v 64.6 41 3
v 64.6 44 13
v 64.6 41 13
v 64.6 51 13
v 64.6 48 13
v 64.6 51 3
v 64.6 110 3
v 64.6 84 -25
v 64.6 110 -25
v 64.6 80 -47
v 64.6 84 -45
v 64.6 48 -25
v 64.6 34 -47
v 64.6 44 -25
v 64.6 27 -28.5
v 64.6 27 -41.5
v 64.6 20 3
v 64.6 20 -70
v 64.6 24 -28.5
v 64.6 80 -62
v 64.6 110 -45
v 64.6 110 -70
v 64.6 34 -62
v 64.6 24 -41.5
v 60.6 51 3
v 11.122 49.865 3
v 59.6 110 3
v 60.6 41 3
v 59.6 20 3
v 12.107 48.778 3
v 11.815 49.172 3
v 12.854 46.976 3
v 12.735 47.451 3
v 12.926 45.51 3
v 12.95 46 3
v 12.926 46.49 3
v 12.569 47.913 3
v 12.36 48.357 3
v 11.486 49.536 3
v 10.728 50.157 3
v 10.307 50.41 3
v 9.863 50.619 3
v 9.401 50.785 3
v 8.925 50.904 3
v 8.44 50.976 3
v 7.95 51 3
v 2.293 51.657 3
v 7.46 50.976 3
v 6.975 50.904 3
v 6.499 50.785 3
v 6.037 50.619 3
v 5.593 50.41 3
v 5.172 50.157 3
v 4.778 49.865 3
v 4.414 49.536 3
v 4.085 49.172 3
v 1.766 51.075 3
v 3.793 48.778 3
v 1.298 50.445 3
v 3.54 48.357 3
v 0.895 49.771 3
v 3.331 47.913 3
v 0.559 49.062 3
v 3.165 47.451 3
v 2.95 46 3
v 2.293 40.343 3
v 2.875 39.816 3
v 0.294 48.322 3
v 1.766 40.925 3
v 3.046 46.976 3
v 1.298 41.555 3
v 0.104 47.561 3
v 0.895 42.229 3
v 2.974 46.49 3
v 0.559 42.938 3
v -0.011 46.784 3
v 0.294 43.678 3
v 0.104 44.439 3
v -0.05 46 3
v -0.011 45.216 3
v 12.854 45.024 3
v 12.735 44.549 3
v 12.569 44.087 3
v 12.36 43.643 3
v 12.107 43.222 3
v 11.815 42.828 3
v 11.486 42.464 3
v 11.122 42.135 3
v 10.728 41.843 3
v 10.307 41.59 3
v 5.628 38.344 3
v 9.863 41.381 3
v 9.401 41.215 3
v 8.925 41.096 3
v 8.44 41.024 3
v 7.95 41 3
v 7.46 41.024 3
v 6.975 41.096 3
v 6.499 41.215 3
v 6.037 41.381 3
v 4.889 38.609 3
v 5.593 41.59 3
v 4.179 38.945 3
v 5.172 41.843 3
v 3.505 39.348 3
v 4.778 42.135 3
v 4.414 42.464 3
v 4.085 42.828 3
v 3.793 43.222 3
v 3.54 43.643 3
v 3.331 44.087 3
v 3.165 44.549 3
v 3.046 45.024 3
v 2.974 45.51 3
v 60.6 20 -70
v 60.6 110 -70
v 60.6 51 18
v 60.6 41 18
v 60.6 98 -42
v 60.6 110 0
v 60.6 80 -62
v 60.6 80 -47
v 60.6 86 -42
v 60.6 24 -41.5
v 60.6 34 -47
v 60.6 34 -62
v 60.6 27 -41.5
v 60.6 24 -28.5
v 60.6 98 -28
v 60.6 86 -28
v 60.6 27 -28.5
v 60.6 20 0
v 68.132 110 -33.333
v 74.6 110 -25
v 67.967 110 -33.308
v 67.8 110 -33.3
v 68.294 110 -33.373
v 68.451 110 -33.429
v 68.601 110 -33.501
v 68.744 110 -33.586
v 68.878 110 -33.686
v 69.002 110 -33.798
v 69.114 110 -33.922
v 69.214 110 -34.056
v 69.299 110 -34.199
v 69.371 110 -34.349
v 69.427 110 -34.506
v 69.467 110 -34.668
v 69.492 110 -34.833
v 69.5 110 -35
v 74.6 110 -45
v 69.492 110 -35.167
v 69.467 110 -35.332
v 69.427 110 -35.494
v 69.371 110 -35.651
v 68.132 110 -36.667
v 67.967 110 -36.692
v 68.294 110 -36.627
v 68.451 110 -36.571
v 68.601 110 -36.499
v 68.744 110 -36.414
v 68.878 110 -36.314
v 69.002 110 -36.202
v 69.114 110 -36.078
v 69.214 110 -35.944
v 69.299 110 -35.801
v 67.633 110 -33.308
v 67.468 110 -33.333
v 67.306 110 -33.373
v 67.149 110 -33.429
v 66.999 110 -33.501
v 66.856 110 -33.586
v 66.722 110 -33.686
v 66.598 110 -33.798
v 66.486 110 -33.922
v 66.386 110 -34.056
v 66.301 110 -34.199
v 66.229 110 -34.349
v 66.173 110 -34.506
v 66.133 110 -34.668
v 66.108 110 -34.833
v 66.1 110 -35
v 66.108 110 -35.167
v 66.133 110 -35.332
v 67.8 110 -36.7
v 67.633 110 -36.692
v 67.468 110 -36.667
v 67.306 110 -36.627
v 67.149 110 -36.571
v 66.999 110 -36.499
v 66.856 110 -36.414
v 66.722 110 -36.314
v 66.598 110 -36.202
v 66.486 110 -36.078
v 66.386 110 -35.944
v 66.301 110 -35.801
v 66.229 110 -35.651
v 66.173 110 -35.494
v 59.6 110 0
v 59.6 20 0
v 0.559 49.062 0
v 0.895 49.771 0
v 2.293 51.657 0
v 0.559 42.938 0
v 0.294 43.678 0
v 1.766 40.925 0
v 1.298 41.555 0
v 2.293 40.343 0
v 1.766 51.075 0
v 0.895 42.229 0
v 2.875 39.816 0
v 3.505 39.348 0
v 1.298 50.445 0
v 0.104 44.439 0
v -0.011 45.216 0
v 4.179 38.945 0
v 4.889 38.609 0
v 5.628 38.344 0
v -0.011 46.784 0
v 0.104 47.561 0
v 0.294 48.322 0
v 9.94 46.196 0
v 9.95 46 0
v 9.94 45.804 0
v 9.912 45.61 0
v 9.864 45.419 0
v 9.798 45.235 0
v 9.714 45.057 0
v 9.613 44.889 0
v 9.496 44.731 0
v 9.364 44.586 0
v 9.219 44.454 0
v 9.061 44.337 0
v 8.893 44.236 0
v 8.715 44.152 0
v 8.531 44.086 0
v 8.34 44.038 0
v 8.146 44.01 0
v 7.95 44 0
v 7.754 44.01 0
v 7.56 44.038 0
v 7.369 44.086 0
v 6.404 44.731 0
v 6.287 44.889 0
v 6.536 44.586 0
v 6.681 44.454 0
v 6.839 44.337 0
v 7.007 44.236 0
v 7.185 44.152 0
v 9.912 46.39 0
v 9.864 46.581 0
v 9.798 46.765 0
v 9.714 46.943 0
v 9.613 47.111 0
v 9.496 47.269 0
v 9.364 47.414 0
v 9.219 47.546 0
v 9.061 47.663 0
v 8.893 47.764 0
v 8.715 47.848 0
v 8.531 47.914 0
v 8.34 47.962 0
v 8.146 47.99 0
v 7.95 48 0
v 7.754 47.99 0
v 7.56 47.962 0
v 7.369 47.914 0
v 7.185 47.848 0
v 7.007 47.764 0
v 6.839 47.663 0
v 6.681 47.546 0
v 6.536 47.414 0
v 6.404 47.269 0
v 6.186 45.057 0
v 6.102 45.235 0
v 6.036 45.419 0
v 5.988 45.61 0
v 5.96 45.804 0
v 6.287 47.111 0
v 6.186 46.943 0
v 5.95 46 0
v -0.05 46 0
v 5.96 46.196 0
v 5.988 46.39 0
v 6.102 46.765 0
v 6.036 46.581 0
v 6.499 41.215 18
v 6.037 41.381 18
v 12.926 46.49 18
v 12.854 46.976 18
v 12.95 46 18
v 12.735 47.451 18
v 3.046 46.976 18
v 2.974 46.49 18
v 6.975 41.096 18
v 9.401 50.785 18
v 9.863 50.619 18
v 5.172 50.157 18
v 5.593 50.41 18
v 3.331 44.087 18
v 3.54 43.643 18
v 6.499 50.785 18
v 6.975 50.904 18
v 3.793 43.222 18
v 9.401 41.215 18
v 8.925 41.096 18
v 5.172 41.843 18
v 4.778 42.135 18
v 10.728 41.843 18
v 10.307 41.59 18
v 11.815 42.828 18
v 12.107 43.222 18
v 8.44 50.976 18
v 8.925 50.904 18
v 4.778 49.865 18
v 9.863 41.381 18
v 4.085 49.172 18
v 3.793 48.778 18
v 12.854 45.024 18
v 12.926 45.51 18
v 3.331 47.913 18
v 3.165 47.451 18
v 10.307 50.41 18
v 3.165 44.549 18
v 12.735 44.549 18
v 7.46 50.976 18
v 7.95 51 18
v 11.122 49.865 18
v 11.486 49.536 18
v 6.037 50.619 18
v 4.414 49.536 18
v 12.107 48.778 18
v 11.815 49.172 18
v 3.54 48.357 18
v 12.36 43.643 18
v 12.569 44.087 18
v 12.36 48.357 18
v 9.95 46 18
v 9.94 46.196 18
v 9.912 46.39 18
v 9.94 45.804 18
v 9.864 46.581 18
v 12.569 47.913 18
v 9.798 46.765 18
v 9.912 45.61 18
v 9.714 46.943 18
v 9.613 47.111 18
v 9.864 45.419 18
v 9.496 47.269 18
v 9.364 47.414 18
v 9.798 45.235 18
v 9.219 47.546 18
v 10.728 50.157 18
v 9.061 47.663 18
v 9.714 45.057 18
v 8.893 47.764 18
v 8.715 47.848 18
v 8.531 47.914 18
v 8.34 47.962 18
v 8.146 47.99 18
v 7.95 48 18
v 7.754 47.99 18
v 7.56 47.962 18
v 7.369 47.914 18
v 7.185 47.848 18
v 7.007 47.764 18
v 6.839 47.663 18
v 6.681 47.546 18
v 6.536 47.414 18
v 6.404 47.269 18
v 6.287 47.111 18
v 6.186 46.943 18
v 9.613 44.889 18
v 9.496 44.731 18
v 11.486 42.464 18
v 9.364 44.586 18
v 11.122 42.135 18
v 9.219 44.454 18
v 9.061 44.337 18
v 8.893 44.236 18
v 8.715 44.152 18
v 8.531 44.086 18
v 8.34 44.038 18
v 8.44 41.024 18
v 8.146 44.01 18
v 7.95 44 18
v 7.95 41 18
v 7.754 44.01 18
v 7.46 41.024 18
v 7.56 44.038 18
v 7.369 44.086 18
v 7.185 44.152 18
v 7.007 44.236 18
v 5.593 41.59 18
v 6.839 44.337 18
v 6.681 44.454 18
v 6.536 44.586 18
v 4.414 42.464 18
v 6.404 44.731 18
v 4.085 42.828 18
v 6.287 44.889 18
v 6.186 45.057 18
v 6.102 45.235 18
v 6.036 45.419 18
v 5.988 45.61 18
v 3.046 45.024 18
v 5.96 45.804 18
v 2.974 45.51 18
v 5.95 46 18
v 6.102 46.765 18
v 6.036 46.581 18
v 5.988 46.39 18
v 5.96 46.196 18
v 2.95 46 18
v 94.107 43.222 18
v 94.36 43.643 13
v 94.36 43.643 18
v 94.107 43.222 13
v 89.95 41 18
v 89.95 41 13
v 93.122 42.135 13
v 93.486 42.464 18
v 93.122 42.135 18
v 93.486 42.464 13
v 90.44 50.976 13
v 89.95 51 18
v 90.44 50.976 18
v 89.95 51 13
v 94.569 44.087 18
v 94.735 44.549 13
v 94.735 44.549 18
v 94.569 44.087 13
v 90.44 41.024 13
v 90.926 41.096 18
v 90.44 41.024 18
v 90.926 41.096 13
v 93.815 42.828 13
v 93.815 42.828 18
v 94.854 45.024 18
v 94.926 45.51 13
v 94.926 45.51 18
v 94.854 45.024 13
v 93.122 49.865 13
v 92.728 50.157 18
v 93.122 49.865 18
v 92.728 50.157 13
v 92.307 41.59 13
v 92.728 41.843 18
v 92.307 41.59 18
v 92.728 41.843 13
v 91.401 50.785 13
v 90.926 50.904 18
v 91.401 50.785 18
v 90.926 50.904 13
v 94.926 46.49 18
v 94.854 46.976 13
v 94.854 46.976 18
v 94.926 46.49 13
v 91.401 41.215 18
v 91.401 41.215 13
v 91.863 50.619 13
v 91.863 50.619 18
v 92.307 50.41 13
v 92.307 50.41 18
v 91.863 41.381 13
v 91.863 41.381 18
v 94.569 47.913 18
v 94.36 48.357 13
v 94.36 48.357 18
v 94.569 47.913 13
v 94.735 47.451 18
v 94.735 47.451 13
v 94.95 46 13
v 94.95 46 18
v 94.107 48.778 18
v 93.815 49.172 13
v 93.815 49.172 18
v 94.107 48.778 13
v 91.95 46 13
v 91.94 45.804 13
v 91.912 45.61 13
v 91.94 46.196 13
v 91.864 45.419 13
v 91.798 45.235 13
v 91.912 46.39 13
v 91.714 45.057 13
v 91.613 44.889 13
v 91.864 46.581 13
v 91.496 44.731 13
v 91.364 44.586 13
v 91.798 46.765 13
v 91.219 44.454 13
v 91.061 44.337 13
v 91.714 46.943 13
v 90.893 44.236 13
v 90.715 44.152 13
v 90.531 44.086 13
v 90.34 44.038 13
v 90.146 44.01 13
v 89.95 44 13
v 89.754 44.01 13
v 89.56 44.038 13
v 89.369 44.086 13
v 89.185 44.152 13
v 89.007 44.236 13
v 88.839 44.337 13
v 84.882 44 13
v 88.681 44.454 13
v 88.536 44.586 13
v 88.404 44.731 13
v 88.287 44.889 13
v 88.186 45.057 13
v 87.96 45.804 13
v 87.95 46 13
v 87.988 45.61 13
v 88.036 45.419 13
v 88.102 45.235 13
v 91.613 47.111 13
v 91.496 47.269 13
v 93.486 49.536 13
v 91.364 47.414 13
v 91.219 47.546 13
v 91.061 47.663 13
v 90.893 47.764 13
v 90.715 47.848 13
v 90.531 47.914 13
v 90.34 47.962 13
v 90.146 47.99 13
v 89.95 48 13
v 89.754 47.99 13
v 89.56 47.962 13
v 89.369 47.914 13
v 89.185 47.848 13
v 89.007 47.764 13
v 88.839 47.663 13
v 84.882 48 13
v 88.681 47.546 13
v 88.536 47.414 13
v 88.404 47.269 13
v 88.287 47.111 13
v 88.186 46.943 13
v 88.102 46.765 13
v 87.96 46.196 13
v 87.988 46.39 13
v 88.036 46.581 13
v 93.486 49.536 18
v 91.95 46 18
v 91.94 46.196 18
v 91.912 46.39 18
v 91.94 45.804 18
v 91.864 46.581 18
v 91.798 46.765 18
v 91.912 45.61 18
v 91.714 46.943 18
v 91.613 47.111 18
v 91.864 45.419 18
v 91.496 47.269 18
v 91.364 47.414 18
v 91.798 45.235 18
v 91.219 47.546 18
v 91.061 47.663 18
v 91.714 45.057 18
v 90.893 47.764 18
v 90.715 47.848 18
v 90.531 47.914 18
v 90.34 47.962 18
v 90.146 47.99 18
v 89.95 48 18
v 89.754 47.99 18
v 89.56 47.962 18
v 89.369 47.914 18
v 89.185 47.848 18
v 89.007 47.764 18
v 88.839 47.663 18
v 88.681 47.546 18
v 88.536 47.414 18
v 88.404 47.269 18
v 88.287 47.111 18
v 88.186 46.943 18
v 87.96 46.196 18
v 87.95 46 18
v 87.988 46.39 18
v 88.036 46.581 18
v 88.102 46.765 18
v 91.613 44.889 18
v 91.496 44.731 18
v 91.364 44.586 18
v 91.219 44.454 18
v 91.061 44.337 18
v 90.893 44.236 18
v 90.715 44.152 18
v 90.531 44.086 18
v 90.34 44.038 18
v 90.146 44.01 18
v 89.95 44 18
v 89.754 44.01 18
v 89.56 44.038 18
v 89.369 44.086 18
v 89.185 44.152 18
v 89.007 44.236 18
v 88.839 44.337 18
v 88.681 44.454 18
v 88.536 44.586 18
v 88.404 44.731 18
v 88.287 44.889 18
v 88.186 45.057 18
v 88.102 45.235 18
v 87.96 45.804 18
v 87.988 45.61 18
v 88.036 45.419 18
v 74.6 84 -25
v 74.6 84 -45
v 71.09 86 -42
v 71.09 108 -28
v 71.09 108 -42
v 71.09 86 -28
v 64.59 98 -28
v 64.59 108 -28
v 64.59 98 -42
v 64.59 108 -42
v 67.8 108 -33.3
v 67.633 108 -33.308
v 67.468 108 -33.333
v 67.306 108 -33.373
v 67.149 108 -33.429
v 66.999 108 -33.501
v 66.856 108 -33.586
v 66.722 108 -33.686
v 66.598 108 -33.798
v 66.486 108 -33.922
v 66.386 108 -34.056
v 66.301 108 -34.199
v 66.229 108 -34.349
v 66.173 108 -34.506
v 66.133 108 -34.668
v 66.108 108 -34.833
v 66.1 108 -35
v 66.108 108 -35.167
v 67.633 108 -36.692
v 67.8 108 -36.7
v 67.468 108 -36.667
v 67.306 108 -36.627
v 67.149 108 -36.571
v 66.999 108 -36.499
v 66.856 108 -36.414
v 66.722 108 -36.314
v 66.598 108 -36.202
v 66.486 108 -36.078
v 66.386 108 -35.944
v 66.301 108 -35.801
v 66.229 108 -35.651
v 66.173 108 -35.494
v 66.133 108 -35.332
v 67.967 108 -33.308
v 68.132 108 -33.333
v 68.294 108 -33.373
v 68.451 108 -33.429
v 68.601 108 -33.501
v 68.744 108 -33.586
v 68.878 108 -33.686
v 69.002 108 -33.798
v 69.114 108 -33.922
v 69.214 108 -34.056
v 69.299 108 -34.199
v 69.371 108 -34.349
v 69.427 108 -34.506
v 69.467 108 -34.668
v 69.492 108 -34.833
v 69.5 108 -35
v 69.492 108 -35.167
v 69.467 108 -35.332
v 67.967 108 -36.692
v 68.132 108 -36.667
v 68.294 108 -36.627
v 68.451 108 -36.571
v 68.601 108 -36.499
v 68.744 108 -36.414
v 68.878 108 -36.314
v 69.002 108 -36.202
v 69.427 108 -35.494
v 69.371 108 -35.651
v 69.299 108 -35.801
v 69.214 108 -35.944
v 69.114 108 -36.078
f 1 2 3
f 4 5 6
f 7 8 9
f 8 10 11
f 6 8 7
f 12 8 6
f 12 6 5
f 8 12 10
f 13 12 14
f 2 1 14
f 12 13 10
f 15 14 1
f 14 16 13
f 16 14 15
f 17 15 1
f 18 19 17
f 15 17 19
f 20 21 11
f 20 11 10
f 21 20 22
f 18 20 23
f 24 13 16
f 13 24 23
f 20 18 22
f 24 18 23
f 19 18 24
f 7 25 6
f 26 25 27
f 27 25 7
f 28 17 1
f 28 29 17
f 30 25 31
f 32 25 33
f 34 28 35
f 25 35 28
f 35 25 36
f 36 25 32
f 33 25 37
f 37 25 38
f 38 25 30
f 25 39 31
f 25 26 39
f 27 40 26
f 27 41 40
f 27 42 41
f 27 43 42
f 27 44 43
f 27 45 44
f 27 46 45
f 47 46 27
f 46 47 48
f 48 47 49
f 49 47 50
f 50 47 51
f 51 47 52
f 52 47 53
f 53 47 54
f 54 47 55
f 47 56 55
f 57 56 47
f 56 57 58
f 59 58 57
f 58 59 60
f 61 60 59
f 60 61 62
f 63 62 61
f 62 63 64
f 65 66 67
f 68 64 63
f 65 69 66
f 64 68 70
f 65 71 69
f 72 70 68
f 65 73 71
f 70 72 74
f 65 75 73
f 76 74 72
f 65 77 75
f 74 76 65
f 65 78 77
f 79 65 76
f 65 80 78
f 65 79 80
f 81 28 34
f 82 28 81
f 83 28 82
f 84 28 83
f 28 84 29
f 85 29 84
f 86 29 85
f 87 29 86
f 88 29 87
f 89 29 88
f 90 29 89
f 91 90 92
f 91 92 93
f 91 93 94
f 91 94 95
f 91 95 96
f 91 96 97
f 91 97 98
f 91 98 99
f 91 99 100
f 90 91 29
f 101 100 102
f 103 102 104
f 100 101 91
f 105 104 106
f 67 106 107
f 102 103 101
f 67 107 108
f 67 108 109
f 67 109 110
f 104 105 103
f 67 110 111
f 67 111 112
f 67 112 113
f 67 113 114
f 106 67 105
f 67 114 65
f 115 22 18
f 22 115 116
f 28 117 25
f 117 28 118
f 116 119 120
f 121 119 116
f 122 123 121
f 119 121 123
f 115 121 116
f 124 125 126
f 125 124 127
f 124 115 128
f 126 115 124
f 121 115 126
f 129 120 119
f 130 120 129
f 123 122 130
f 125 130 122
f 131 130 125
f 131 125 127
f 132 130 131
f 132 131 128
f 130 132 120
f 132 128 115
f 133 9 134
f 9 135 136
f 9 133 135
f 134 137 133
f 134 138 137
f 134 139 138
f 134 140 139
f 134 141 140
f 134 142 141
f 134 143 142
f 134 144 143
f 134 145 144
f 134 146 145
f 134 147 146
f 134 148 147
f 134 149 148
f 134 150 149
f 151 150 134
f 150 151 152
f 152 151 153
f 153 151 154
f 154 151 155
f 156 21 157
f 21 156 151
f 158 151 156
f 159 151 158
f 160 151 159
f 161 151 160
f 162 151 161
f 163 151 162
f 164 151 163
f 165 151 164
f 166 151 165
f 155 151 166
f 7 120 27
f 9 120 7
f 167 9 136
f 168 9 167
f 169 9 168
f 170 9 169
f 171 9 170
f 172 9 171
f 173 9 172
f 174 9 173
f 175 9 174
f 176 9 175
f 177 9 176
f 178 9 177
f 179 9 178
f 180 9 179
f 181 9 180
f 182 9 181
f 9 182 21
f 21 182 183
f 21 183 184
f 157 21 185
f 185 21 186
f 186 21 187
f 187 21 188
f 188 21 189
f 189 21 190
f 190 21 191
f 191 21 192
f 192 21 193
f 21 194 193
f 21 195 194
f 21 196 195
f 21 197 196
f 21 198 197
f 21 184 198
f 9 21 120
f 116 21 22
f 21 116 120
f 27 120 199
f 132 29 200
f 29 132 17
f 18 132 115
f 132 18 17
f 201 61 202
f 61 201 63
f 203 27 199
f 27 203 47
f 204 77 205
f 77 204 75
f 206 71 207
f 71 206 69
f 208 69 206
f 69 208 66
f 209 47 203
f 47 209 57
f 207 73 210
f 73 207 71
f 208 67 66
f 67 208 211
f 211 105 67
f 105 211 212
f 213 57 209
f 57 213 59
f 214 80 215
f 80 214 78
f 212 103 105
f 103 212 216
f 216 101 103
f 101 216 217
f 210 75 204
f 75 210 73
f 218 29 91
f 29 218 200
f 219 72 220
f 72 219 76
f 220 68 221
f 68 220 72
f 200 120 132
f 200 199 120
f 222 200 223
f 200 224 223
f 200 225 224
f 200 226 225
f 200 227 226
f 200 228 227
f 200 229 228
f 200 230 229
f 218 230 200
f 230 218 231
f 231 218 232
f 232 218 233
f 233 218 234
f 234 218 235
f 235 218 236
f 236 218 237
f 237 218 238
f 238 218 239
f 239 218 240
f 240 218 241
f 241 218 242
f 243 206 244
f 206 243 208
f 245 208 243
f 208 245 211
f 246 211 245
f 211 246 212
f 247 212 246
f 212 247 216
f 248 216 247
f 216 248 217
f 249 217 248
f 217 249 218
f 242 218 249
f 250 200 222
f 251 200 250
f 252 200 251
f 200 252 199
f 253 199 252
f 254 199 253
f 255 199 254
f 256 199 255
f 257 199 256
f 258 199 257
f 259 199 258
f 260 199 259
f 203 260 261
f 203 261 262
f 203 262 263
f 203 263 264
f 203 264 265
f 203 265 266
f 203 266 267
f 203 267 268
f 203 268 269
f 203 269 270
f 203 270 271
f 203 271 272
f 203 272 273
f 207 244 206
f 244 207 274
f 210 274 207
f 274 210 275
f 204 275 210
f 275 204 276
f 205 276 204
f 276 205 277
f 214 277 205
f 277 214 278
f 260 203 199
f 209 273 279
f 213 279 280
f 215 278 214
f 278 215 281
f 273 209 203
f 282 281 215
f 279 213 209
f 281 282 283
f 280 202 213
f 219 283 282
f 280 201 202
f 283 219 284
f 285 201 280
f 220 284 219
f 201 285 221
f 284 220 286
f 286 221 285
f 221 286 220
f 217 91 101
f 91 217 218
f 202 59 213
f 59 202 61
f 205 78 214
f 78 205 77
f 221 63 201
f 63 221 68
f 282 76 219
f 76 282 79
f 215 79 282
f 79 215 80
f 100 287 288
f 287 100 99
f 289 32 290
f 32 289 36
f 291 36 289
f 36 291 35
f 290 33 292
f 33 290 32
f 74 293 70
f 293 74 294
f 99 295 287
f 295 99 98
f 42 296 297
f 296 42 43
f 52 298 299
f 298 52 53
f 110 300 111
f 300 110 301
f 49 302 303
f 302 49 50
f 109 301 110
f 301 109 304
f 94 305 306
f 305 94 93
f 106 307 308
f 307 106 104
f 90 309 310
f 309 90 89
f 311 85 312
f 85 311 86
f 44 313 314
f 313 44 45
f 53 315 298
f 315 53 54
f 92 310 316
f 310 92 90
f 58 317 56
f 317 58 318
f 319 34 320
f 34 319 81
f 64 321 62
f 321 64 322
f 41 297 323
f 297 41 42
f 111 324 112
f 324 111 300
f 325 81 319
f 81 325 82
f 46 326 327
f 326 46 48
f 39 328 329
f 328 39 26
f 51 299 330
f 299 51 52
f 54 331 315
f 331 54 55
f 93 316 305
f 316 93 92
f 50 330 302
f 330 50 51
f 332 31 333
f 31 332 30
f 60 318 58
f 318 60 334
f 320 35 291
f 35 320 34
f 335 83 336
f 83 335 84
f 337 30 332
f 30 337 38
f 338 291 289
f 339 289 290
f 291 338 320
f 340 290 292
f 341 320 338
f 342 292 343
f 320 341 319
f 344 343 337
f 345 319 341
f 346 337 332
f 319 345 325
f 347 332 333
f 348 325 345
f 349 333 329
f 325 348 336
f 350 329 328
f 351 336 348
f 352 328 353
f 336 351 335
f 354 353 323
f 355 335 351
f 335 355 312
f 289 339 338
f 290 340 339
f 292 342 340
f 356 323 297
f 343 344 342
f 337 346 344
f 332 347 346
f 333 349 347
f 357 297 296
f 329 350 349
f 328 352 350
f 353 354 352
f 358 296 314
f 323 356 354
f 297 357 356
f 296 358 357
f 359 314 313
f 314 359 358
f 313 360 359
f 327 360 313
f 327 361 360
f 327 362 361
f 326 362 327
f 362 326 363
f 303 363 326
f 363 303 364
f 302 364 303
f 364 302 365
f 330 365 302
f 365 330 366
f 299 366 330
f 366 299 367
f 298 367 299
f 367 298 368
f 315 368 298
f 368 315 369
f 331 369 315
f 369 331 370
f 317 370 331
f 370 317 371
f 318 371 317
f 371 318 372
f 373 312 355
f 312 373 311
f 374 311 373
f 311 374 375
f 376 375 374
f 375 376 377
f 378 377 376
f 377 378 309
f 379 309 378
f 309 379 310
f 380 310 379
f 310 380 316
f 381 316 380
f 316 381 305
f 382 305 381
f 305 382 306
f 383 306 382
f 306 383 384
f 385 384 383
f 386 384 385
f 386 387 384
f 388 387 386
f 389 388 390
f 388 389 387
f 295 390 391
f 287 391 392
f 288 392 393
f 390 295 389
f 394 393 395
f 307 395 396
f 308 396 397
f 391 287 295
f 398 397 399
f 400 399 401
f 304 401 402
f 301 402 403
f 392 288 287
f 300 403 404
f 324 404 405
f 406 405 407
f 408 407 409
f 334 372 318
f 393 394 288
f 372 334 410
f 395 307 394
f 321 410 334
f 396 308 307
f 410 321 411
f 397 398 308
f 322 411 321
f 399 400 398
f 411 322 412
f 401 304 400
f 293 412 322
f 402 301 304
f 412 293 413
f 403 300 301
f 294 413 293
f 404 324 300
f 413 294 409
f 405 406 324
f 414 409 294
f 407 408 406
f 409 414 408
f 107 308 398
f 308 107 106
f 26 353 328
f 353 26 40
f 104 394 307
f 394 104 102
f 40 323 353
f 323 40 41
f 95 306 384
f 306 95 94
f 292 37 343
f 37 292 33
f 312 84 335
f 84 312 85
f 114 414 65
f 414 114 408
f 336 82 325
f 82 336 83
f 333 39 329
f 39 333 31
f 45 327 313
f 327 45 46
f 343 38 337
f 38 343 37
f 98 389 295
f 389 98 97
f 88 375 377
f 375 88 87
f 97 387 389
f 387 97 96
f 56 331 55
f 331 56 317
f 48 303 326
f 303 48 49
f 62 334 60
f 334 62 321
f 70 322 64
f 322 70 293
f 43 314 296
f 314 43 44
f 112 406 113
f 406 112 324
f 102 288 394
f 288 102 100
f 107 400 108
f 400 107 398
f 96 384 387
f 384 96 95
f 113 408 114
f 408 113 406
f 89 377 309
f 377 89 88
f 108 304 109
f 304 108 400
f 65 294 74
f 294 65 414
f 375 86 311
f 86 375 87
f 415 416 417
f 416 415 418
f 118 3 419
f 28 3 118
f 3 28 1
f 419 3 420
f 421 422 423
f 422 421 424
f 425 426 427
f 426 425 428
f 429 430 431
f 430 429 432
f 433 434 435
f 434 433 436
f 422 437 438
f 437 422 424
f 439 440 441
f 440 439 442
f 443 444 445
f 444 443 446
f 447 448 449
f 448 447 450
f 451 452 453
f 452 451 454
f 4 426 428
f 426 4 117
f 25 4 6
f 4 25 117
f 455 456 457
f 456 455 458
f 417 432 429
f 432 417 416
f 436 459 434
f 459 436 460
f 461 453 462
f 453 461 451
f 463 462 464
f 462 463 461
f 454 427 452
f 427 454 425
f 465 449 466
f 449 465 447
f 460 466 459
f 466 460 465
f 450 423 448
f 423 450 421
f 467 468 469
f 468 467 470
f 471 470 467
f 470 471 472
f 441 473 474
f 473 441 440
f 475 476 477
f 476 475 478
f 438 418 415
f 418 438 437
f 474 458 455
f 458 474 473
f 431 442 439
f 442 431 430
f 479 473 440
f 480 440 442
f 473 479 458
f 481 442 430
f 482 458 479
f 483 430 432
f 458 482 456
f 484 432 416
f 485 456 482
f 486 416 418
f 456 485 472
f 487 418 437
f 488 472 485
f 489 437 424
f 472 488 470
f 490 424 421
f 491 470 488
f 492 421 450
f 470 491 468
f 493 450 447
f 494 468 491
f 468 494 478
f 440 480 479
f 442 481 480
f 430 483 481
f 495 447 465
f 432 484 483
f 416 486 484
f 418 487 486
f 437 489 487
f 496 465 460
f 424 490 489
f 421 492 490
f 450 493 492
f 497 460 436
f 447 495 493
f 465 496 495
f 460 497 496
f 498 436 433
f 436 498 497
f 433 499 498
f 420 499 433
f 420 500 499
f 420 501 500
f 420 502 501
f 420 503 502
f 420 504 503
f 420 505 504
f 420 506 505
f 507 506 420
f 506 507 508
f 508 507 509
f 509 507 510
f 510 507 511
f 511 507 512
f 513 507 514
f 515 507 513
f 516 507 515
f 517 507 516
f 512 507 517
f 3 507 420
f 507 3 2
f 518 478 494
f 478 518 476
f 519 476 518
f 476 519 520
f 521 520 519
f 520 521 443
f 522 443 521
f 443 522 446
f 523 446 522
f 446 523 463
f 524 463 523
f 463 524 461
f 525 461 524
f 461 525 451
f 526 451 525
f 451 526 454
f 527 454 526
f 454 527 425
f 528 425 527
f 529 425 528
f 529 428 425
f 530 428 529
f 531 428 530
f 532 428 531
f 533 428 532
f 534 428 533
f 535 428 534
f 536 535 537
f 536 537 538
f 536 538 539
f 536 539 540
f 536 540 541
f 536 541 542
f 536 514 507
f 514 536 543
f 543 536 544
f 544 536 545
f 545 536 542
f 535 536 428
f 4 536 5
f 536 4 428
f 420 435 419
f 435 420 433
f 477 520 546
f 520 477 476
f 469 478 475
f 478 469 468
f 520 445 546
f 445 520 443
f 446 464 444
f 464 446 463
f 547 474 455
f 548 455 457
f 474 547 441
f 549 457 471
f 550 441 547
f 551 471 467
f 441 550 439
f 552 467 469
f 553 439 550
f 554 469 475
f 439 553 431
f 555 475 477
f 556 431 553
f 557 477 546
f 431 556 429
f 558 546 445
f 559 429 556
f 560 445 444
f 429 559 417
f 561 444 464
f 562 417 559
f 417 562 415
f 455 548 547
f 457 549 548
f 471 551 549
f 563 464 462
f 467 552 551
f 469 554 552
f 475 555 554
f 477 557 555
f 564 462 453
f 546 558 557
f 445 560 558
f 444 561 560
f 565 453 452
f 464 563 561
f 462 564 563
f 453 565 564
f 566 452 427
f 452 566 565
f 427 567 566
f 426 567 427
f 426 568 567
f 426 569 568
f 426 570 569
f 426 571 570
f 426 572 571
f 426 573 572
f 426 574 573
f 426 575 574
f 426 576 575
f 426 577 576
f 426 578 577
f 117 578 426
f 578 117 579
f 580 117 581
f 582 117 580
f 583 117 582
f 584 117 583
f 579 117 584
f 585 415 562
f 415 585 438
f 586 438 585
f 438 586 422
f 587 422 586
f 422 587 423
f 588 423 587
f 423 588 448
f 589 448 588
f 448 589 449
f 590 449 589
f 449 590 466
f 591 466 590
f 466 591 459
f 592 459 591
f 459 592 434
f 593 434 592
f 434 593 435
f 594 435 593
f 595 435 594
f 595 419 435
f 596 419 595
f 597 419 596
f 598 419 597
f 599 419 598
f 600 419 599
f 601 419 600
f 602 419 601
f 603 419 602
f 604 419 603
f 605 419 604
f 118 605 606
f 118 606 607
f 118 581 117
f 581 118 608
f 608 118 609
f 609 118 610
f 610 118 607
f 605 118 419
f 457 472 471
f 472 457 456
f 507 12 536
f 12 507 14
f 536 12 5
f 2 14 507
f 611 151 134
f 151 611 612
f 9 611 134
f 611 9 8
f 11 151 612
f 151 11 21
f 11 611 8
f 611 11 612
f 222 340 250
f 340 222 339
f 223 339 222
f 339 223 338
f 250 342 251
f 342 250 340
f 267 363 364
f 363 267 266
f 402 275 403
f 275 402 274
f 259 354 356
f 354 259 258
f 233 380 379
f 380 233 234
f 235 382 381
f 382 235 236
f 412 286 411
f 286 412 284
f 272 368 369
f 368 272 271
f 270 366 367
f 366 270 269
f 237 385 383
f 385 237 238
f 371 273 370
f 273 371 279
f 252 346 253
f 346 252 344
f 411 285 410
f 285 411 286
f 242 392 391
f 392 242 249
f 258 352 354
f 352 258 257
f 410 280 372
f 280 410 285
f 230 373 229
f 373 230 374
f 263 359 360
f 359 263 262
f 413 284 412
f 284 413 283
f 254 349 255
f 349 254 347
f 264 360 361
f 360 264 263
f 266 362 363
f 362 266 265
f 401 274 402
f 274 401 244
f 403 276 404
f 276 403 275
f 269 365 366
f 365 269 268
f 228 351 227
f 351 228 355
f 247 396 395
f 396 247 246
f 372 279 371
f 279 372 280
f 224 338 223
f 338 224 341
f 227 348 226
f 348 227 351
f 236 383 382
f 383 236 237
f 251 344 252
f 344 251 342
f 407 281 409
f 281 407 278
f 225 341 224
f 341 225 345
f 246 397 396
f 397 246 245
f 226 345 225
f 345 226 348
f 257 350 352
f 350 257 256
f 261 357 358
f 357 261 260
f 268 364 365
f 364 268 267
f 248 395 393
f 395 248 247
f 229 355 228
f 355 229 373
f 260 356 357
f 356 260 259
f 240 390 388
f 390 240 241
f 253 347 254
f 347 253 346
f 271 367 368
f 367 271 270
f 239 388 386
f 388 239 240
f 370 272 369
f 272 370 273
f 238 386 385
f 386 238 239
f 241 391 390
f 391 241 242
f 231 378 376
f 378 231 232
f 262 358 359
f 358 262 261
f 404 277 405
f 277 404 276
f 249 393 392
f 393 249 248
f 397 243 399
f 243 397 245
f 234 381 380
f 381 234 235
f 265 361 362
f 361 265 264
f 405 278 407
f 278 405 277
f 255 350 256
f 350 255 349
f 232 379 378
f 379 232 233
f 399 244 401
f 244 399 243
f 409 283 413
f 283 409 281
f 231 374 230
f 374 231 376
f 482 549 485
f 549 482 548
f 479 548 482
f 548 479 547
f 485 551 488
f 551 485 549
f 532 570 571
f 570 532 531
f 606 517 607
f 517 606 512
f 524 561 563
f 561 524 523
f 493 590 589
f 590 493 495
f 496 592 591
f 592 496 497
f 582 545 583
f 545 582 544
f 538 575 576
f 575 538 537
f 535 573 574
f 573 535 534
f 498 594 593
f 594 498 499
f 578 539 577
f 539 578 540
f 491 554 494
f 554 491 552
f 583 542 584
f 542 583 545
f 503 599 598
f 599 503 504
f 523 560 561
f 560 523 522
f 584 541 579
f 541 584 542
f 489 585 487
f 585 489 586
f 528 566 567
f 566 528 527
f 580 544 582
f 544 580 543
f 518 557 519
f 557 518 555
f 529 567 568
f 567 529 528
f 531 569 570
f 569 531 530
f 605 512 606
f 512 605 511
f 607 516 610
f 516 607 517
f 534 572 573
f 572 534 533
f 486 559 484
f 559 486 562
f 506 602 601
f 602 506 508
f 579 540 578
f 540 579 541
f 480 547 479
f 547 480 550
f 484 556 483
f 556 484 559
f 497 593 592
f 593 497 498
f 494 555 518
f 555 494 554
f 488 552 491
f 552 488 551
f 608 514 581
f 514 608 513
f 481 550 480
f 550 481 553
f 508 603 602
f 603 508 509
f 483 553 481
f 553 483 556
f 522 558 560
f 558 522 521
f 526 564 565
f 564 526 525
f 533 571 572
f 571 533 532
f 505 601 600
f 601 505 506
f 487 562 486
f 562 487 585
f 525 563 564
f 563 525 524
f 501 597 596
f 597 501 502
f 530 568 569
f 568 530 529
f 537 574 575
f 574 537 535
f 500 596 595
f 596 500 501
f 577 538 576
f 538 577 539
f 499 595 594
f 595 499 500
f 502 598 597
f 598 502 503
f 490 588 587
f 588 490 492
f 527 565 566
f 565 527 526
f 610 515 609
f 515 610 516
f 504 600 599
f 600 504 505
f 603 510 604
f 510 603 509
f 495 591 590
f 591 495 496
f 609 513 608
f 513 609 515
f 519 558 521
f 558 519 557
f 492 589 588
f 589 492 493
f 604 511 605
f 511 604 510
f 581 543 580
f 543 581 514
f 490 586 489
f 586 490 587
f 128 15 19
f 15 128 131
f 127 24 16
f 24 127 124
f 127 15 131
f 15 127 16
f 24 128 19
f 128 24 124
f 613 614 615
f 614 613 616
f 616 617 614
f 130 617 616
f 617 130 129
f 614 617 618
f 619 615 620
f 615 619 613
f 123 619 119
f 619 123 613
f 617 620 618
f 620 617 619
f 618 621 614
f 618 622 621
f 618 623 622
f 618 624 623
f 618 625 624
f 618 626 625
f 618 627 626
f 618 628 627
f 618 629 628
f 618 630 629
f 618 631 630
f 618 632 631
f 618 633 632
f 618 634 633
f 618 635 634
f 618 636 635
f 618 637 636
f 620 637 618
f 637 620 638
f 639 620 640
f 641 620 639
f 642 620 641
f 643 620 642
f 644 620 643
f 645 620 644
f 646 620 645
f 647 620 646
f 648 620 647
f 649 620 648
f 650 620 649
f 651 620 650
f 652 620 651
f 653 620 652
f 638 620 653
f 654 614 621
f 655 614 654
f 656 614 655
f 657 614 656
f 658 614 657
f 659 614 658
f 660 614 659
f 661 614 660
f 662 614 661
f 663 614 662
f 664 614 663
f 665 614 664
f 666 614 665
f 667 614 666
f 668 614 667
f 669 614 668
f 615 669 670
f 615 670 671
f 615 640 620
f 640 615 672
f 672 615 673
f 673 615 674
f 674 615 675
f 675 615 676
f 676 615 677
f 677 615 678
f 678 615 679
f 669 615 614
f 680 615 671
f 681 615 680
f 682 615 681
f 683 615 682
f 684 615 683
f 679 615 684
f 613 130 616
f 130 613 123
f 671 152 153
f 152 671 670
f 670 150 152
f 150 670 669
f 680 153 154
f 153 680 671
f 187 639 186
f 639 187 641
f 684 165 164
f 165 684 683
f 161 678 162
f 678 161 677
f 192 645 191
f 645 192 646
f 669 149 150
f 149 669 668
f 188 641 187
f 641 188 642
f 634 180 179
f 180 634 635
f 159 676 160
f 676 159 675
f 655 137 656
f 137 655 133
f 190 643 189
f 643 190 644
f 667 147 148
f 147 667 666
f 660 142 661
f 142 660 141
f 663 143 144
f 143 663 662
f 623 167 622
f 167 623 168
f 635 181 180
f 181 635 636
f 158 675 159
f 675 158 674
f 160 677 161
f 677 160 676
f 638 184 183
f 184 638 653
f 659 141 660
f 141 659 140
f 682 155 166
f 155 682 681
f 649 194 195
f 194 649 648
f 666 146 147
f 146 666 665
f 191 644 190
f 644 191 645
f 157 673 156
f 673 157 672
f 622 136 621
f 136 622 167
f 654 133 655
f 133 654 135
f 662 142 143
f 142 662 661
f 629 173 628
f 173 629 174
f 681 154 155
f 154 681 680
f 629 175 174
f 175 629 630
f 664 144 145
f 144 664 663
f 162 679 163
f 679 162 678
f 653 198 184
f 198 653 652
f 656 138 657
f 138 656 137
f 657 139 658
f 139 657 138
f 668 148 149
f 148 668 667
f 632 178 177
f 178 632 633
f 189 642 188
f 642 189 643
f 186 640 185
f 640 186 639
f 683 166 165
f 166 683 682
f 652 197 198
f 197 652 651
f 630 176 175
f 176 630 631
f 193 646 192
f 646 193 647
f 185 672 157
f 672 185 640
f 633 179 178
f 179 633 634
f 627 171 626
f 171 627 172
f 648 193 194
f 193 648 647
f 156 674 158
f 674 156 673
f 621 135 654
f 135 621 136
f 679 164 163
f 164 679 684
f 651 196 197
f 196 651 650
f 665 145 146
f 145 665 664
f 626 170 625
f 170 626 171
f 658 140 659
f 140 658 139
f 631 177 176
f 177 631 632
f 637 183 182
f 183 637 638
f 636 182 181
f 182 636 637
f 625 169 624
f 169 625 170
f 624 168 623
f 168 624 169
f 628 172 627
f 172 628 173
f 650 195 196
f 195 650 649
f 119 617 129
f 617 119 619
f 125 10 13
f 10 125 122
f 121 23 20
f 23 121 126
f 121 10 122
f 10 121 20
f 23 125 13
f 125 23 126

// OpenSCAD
// file: params.scad
// =====================================================================
// EurekaMate - motor mount parameters (all dimensions in mm)
// Target: Eureka Mignon Specialita + aftermarket gear-knob kit
//         (big ring gear on the grind dial + small aluminium knob gear)
//
// Values marked TODO-MEASURE are best guesses from public data and MUST
// be checked with a caliper on your grinder/kit before printing.
// See ../README.md for how to measure.
// =====================================================================

$fn = 64;

// ---------------- Grinder body (Eureka datasheet: W 120 x D 140 x H 350) --------
body_w        = 120;   // width  (Eureka spec sheet / product page)
body_d        = 140;   // depth of the metal body (spec sheet; old manual says 180 incl. fork)  TODO-MEASURE
body_r        = 18;    // vertical corner radius of the body                                     TODO-MEASURE
body_top_z    = 205;   // height of the top surface (where the dial sits) above the table       TODO-MEASURE
clearance     = 0.6;   // fit clearance against the body (per side)

// ---------------- Gear-knob kit ------------------------------------------------
// Kit small gear (the aluminium knob that meshes with the big ring gear)
kit_gear_module   = 1.0;   // gear module of the kit                                             TODO-MEASURE
kit_small_teeth   = 20;    // teeth on the small aluminium knob gear                             TODO-MEASURE (count!)
kit_ring_teeth    = 66;    // teeth on the big ring gear on the dial                              TODO-MEASURE (count!)
kit_knob_od       = kit_gear_module * (kit_small_teeth + 2); // tip diameter of the small gear
kit_knob_height   = 12;    // tooth face width of the small gear                                  TODO-MEASURE
// Position of the small knob gear axis relative to the RIGHT body side and the FRONT face
knob_from_right   = 22;    // distance axis -> right side wall (inwards)                         TODO-MEASURE
knob_from_front   = 30;    // distance axis -> front face (backwards)                             TODO-MEASURE
knob_top_above_body = 14;  // top of the small knob above the body top surface                    TODO-MEASURE

// ---------------- Drive pinion on the stepper ----------------------------------
pinion_teeth      = 12;    // fewer teeth = more reduction/torque, slower travel (min ~10)
pinion_module     = kit_gear_module;
pressure_angle    = 20;
pinion_face       = 10;    // tooth face width
pinion_hub_d      = 12;
pinion_hub_h      = 6;
shaft_d           = 5.0;   // NEMA17 shaft
shaft_flat        = 0.5;   // D-flat depth (standard 0.5 mm)
shaft_clear       = 0.15;  // print tolerance on the bore
setscrew_d        = 3.2;   // M3 grub screw (radial)
nut_w             = 5.6;   // M3 nut trap across flats
backlash          = 0.15;  // tooth thinning per flank

// Centre distance pinion <-> small kit gear (standard gearing)
center_distance   = pinion_module * (pinion_teeth + kit_small_teeth) / 2;

// ---------------- Stepper motor ------------------------------------------------
// Default: 17HS4401 (42.3 x 42.3 x 40 mm, ~0.45 Nm). Pancake: motor_len = 20..25.
motor_w           = 42.3;
motor_len         = 40;
motor_boss_d      = 22.2;  // centring boss
motor_boss_h      = 2.0;
motor_hole_pitch  = 31.0;  // M3 hole spacing
motor_shaft_len   = 24;    // shaft length beyond the face

// ---------------- Electronics bay ----------------------------------------------
tmc_w = 15.5; tmc_l = 20.5; tmc_h = 22;    // TMC2209 module on pin headers incl. heatsink (BTT/FYSETC style)
buck_w = 17.5; buck_l = 22.5; buck_h = 6;   // MP1584 (22x17); Mini560 (~20x15) also fits
cap_d = 10.5;  cap_h = 17;                  // 100-470 uF / 25 V electrolytic (upright)
as5600_w = 23.5; as5600_l = 23.5;           // common AS5600 breakout (magnet 6x2.5 mm in the knob)
wall = 2.4;
floor_t = 3.0;
lid_t = 2.4;
// M3 threads in the print: heat-set inserts (default) or self-tapping screws.
// Insert: ruthex RX-M3x5.7 or similar (M3, length 5.7 mm, OD 4.6 mm) -> 4.0 mm hole, >= 6.5 mm deep.
heat_inserts  = true;
insert_hole_d = 4.0;    // check your insert's data sheet (ruthex M3x5.7: 4.0 mm)
self_tap_d    = 2.6;    // M3 screw cut directly into PETG
m3_thread_d   = heat_inserts ? insert_hole_d : self_tap_d;
lid_screw_d   = m3_thread_d;            // 4x in the housing bosses (lid screws M3x8)
lid_boss_d    = heat_inserts ? 8 : 7;   // boss around the lid screw holes
vent_w = 1.6;

// Mesh adjustment: slot length along the pinion->knob line
mesh_slot_len = 6;   // +-3 mm

// ---------------- Side brace + strap -------------------------------------------
brace_h        = 70;    // height of the plate on the right side
brace_t        = 4;     // plate thickness
brace_lip      = 8;     // hook lip over the top edge (slides on from below, then hooks)
brace_depth    = 90;    // front-back length of the plate
strap_w        = 12;    // strap width
strap_t        = 1.6;   // strap thickness (TPU 95A recommended, PETG works with 1.2 mm)
strap_z        = 35;    // strap height on the brace (from top edge, downwards)
strap_segments = 4;     // loop split into printable segments

// Housing floor height above the body top (pinion must clear the body; AS5600 gap)
floor_gap       = 4;      // floor underside sits this far above the knob top
// Optional AS5600 sits on the PINION AXIS: it reads a diametric magnet on the REAR shaft
// of a dual-shaft NEMA17 (e.g. "17HS4401 dual shaft"). Single-shaft motor -> as5600 = false.
as5600         = true;
rear_shaft_len = 10;      // rear shaft stick-out of a dual-shaft motor          TODO-MEASURE
magnet_d = 6; magnet_h = 2.5;  // diametric magnet 6x2.5 mm (often shipped with AS5600 boards)
as5600_gap     = 1.5;     // chip to magnet (datasheet: 0.5..3 mm)
as5600_chip_h  = 1.5;
as5600_pcb_t   = 1.6;

// ---------------- Derived housing geometry (shared by housing, brace, assembly) --
rear_stack = as5600 ? rear_shaft_len + magnet_h + as5600_gap + as5600_chip_h + as5600_pcb_t + 1.5 : 4;
inner_h   = motor_len + rear_stack;
// height of the AS5600 PCB underside above the floor top (chip hangs below it)
as5600_pcb_z = motor_len + rear_shaft_len + magnet_h + as5600_gap + as5600_chip_h;
bay_w     = max(tmc_w, buck_w, cap_d) + 2;
bay_l     = tmc_l + buck_l + cap_d + 8;
motor_box = motor_w + 1.0;
knob_y    = wall + kit_knob_od / 2 + 2;            // knob axis in housing coords
motor_y   = knob_y + center_distance;               // motor axis in housing coords
motor_x   = wall + motor_box / 2;
box_w     = motor_box + bay_w + 3 * wall;
box_l     = max(motor_y + motor_box / 2 + wall, bay_l + 2 * wall);
box_h     = floor_t + inner_h;
foot_len  = 10;
foot_slots = [[-foot_len / 2 - 1, motor_y], [box_w + foot_len / 2 + 1, motor_y]];

// World placement: body top = z 0, front face = y 0, right side = x +body_w/2
knob_world  = [body_w / 2 - knob_from_right, knob_from_front];
floor_z     = knob_top_above_body + floor_gap;      // housing underside
housing_org = [knob_world[0] - motor_x, knob_world[1] - knob_y, floor_z];
// main file
// Side brace: slides on from BELOW along the RIGHT body side until the hook lip catches the
// top edge. Carries the motor housing (two M3 posts, mesh slots are in the housing feet)
// and is held by a closed strap running once around the body (no drilling).
// World coords: body top = z 0, front = y 0, right side = x +body_w/2.
include <params.scad>

side_x   = body_w / 2 + clearance;                   // inner face of the plate
// housing feet in world coords
foot_w   = [for (p = foot_slots) [housing_org[0] + p[0], housing_org[1] + p[1]]];
inner_ft = foot_w[0];
outer_ft = foot_w[1];
y0       = min(inner_ft[1] - 14, knob_world[1] - 10);   // plate front edge
plate_l  = max(brace_depth, outer_ft[1] - y0 + 14);
post_d   = 10;
arm_t    = 3;
// strap passes through two slots near the plate ends
strap_slot_z = -strap_z;

module rounded_rect_ring_profile() {}

module brace() {
    difference() {
        union() {
            // vertical plate on the right side
            translate([side_x, y0, -brace_h]) cube([brace_t, plate_l, brace_h + arm_t]);
            // top arm lying on the body top, from the side edge inwards to the inner foot
            hull() {
                translate([side_x - 1, y0, 0]) cube([brace_t + 1, plate_l, arm_t]);
                translate([inner_ft[0], inner_ft[1], 0]) cylinder(d = post_d + 6, h = arm_t);
            }
            // inner post (housing foot rests on it)
            translate([inner_ft[0], inner_ft[1], 0]) cylinder(d = post_d, h = floor_z);
            // outer shelf: from the plate outwards to the outer foot, with a gusset
            hull() {
                translate([side_x, outer_ft[1] - post_d / 2, floor_z - arm_t - 2]) cube([brace_t, post_d, arm_t + 2]);
                translate([outer_ft[0], outer_ft[1], floor_z - arm_t - 2]) cylinder(d = post_d, h = arm_t + 2);
            }
            hull() {   // gusset under the shelf down onto the plate
                translate([side_x, outer_ft[1] - 2, -25]) cube([brace_t, 4, 1]);
                translate([side_x, outer_ft[1] - 2, floor_z - 3]) cube([brace_t, 4, 1]);
                translate([outer_ft[0] - post_d / 2, outer_ft[1] - 2, floor_z - 3]) cube([1, 4, 1]);
            }
            hull() {   // plate up to the shelf height
                translate([side_x, outer_ft[1] - post_d / 2, 0]) cube([brace_t, post_d, 1]);
                translate([side_x, outer_ft[1] - post_d / 2, floor_z - 3]) cube([brace_t, post_d, 1]);
            }
            // tensioner rail at the rear end of the plate (see strap.scad)
            translate([side_x + brace_t, y0 + plate_l - 26, strap_slot_z - strap_w / 2 - 4]) cube([10, 26, strap_w + 8]);
        }
        // M3 holes in both posts: heat insert (m3_thread_d = 4.0) or self-tapping (2.6), see params.scad
        for (f = foot_w) translate([f[0], f[1], -brace_h]) cylinder(d = m3_thread_d, h = brace_h + floor_z + 5);
        // front strap slot: the strap end loops through it
        translate([side_x - 1, y0 + 4, strap_slot_z - strap_w / 2 - 0.5]) cube([brace_t + 2, 3, strap_w + 1]);
        // rear tensioner channel: slider runs in y, pulled by an M3 screw from the rear end
        translate([side_x + brace_t - 0.01, y0 + plate_l - 24, strap_slot_z - strap_w / 2 - 1]) cube([6.5, 22, strap_w + 2]);
        translate([side_x + brace_t + 3.2, y0 + plate_l - 3, strap_slot_z]) rotate([-90, 0, 0]) cylinder(d = 3.4, h = 10);
        // window so the strap can enter the channel from the body side
        translate([side_x - 1, y0 + plate_l - 24, strap_slot_z - strap_w / 2 - 1]) cube([brace_t + 2, 12, strap_w + 2]);
        // weight-saving / cooling cut-outs in the plate
        translate([side_x - 1, y0 + 14, -brace_h + 8]) cube([brace_t + 2, plate_l - 44, max(brace_h - strap_z - 20, 1)]);
    }
}

brace();
